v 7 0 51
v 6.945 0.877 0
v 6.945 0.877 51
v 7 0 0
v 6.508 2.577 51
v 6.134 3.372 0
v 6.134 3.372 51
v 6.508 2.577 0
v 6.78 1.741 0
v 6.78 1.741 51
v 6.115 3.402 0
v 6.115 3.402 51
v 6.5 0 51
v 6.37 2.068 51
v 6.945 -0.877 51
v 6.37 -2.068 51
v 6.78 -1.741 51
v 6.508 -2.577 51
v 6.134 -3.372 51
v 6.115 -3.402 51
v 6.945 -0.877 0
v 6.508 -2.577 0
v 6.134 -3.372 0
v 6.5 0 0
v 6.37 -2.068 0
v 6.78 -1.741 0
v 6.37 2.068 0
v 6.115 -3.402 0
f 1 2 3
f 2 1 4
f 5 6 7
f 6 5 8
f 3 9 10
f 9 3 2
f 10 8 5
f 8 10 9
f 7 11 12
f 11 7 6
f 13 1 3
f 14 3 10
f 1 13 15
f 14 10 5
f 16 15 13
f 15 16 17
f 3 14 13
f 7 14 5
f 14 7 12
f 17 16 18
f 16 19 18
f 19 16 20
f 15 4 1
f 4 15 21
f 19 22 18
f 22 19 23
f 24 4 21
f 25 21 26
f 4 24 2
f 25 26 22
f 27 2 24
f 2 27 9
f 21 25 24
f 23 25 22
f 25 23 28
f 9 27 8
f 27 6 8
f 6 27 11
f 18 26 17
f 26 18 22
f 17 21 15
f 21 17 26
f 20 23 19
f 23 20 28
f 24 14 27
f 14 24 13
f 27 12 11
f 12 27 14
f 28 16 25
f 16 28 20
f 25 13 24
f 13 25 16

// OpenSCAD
$fn = 50;


difference() {
	union() {
		cylinder(h = 51, r = 7.0000000000);
		translate(v = [-13.0000000000, 0, 0]) {
			cylinder(h = 51, r = 7.0000000000);
		}
	}
	union() {
		cylinder(h = 51, r = 3.2500000000);
		cylinder(h = 51, r = 1.8000000000);
		cylinder(h = 51, r = 1.8000000000);
		cylinder(h = 51, r = 1.8000000000);
		translate(v = [-17.5000000000, 0, 0]) {
			hull() {
				translate(v = [-3.7500000000, 0.0000000000, 0]) {
					cylinder(h = 51, r = 7.5000000000);
				}
				translate(v = [3.7500000000, 0.0000000000, 0]) {
					cylinder(h = 51, r = 7.5000000000);
				}
				translate(v = [-3.7500000000, -0.0000000000, 0]) {
					cylinder(h = 51, r = 7.5000000000);
				}
				translate(v = [3.7500000000, -0.0000000000, 0]) {
					cylinder(h = 51, r = 7.5000000000);
				}
			}
		}
		translate(v = [-10.0000000000, 0, 0.0000000000]) {
			cylinder(h = 51, r = 16.5000000000);
		}
	}
}
